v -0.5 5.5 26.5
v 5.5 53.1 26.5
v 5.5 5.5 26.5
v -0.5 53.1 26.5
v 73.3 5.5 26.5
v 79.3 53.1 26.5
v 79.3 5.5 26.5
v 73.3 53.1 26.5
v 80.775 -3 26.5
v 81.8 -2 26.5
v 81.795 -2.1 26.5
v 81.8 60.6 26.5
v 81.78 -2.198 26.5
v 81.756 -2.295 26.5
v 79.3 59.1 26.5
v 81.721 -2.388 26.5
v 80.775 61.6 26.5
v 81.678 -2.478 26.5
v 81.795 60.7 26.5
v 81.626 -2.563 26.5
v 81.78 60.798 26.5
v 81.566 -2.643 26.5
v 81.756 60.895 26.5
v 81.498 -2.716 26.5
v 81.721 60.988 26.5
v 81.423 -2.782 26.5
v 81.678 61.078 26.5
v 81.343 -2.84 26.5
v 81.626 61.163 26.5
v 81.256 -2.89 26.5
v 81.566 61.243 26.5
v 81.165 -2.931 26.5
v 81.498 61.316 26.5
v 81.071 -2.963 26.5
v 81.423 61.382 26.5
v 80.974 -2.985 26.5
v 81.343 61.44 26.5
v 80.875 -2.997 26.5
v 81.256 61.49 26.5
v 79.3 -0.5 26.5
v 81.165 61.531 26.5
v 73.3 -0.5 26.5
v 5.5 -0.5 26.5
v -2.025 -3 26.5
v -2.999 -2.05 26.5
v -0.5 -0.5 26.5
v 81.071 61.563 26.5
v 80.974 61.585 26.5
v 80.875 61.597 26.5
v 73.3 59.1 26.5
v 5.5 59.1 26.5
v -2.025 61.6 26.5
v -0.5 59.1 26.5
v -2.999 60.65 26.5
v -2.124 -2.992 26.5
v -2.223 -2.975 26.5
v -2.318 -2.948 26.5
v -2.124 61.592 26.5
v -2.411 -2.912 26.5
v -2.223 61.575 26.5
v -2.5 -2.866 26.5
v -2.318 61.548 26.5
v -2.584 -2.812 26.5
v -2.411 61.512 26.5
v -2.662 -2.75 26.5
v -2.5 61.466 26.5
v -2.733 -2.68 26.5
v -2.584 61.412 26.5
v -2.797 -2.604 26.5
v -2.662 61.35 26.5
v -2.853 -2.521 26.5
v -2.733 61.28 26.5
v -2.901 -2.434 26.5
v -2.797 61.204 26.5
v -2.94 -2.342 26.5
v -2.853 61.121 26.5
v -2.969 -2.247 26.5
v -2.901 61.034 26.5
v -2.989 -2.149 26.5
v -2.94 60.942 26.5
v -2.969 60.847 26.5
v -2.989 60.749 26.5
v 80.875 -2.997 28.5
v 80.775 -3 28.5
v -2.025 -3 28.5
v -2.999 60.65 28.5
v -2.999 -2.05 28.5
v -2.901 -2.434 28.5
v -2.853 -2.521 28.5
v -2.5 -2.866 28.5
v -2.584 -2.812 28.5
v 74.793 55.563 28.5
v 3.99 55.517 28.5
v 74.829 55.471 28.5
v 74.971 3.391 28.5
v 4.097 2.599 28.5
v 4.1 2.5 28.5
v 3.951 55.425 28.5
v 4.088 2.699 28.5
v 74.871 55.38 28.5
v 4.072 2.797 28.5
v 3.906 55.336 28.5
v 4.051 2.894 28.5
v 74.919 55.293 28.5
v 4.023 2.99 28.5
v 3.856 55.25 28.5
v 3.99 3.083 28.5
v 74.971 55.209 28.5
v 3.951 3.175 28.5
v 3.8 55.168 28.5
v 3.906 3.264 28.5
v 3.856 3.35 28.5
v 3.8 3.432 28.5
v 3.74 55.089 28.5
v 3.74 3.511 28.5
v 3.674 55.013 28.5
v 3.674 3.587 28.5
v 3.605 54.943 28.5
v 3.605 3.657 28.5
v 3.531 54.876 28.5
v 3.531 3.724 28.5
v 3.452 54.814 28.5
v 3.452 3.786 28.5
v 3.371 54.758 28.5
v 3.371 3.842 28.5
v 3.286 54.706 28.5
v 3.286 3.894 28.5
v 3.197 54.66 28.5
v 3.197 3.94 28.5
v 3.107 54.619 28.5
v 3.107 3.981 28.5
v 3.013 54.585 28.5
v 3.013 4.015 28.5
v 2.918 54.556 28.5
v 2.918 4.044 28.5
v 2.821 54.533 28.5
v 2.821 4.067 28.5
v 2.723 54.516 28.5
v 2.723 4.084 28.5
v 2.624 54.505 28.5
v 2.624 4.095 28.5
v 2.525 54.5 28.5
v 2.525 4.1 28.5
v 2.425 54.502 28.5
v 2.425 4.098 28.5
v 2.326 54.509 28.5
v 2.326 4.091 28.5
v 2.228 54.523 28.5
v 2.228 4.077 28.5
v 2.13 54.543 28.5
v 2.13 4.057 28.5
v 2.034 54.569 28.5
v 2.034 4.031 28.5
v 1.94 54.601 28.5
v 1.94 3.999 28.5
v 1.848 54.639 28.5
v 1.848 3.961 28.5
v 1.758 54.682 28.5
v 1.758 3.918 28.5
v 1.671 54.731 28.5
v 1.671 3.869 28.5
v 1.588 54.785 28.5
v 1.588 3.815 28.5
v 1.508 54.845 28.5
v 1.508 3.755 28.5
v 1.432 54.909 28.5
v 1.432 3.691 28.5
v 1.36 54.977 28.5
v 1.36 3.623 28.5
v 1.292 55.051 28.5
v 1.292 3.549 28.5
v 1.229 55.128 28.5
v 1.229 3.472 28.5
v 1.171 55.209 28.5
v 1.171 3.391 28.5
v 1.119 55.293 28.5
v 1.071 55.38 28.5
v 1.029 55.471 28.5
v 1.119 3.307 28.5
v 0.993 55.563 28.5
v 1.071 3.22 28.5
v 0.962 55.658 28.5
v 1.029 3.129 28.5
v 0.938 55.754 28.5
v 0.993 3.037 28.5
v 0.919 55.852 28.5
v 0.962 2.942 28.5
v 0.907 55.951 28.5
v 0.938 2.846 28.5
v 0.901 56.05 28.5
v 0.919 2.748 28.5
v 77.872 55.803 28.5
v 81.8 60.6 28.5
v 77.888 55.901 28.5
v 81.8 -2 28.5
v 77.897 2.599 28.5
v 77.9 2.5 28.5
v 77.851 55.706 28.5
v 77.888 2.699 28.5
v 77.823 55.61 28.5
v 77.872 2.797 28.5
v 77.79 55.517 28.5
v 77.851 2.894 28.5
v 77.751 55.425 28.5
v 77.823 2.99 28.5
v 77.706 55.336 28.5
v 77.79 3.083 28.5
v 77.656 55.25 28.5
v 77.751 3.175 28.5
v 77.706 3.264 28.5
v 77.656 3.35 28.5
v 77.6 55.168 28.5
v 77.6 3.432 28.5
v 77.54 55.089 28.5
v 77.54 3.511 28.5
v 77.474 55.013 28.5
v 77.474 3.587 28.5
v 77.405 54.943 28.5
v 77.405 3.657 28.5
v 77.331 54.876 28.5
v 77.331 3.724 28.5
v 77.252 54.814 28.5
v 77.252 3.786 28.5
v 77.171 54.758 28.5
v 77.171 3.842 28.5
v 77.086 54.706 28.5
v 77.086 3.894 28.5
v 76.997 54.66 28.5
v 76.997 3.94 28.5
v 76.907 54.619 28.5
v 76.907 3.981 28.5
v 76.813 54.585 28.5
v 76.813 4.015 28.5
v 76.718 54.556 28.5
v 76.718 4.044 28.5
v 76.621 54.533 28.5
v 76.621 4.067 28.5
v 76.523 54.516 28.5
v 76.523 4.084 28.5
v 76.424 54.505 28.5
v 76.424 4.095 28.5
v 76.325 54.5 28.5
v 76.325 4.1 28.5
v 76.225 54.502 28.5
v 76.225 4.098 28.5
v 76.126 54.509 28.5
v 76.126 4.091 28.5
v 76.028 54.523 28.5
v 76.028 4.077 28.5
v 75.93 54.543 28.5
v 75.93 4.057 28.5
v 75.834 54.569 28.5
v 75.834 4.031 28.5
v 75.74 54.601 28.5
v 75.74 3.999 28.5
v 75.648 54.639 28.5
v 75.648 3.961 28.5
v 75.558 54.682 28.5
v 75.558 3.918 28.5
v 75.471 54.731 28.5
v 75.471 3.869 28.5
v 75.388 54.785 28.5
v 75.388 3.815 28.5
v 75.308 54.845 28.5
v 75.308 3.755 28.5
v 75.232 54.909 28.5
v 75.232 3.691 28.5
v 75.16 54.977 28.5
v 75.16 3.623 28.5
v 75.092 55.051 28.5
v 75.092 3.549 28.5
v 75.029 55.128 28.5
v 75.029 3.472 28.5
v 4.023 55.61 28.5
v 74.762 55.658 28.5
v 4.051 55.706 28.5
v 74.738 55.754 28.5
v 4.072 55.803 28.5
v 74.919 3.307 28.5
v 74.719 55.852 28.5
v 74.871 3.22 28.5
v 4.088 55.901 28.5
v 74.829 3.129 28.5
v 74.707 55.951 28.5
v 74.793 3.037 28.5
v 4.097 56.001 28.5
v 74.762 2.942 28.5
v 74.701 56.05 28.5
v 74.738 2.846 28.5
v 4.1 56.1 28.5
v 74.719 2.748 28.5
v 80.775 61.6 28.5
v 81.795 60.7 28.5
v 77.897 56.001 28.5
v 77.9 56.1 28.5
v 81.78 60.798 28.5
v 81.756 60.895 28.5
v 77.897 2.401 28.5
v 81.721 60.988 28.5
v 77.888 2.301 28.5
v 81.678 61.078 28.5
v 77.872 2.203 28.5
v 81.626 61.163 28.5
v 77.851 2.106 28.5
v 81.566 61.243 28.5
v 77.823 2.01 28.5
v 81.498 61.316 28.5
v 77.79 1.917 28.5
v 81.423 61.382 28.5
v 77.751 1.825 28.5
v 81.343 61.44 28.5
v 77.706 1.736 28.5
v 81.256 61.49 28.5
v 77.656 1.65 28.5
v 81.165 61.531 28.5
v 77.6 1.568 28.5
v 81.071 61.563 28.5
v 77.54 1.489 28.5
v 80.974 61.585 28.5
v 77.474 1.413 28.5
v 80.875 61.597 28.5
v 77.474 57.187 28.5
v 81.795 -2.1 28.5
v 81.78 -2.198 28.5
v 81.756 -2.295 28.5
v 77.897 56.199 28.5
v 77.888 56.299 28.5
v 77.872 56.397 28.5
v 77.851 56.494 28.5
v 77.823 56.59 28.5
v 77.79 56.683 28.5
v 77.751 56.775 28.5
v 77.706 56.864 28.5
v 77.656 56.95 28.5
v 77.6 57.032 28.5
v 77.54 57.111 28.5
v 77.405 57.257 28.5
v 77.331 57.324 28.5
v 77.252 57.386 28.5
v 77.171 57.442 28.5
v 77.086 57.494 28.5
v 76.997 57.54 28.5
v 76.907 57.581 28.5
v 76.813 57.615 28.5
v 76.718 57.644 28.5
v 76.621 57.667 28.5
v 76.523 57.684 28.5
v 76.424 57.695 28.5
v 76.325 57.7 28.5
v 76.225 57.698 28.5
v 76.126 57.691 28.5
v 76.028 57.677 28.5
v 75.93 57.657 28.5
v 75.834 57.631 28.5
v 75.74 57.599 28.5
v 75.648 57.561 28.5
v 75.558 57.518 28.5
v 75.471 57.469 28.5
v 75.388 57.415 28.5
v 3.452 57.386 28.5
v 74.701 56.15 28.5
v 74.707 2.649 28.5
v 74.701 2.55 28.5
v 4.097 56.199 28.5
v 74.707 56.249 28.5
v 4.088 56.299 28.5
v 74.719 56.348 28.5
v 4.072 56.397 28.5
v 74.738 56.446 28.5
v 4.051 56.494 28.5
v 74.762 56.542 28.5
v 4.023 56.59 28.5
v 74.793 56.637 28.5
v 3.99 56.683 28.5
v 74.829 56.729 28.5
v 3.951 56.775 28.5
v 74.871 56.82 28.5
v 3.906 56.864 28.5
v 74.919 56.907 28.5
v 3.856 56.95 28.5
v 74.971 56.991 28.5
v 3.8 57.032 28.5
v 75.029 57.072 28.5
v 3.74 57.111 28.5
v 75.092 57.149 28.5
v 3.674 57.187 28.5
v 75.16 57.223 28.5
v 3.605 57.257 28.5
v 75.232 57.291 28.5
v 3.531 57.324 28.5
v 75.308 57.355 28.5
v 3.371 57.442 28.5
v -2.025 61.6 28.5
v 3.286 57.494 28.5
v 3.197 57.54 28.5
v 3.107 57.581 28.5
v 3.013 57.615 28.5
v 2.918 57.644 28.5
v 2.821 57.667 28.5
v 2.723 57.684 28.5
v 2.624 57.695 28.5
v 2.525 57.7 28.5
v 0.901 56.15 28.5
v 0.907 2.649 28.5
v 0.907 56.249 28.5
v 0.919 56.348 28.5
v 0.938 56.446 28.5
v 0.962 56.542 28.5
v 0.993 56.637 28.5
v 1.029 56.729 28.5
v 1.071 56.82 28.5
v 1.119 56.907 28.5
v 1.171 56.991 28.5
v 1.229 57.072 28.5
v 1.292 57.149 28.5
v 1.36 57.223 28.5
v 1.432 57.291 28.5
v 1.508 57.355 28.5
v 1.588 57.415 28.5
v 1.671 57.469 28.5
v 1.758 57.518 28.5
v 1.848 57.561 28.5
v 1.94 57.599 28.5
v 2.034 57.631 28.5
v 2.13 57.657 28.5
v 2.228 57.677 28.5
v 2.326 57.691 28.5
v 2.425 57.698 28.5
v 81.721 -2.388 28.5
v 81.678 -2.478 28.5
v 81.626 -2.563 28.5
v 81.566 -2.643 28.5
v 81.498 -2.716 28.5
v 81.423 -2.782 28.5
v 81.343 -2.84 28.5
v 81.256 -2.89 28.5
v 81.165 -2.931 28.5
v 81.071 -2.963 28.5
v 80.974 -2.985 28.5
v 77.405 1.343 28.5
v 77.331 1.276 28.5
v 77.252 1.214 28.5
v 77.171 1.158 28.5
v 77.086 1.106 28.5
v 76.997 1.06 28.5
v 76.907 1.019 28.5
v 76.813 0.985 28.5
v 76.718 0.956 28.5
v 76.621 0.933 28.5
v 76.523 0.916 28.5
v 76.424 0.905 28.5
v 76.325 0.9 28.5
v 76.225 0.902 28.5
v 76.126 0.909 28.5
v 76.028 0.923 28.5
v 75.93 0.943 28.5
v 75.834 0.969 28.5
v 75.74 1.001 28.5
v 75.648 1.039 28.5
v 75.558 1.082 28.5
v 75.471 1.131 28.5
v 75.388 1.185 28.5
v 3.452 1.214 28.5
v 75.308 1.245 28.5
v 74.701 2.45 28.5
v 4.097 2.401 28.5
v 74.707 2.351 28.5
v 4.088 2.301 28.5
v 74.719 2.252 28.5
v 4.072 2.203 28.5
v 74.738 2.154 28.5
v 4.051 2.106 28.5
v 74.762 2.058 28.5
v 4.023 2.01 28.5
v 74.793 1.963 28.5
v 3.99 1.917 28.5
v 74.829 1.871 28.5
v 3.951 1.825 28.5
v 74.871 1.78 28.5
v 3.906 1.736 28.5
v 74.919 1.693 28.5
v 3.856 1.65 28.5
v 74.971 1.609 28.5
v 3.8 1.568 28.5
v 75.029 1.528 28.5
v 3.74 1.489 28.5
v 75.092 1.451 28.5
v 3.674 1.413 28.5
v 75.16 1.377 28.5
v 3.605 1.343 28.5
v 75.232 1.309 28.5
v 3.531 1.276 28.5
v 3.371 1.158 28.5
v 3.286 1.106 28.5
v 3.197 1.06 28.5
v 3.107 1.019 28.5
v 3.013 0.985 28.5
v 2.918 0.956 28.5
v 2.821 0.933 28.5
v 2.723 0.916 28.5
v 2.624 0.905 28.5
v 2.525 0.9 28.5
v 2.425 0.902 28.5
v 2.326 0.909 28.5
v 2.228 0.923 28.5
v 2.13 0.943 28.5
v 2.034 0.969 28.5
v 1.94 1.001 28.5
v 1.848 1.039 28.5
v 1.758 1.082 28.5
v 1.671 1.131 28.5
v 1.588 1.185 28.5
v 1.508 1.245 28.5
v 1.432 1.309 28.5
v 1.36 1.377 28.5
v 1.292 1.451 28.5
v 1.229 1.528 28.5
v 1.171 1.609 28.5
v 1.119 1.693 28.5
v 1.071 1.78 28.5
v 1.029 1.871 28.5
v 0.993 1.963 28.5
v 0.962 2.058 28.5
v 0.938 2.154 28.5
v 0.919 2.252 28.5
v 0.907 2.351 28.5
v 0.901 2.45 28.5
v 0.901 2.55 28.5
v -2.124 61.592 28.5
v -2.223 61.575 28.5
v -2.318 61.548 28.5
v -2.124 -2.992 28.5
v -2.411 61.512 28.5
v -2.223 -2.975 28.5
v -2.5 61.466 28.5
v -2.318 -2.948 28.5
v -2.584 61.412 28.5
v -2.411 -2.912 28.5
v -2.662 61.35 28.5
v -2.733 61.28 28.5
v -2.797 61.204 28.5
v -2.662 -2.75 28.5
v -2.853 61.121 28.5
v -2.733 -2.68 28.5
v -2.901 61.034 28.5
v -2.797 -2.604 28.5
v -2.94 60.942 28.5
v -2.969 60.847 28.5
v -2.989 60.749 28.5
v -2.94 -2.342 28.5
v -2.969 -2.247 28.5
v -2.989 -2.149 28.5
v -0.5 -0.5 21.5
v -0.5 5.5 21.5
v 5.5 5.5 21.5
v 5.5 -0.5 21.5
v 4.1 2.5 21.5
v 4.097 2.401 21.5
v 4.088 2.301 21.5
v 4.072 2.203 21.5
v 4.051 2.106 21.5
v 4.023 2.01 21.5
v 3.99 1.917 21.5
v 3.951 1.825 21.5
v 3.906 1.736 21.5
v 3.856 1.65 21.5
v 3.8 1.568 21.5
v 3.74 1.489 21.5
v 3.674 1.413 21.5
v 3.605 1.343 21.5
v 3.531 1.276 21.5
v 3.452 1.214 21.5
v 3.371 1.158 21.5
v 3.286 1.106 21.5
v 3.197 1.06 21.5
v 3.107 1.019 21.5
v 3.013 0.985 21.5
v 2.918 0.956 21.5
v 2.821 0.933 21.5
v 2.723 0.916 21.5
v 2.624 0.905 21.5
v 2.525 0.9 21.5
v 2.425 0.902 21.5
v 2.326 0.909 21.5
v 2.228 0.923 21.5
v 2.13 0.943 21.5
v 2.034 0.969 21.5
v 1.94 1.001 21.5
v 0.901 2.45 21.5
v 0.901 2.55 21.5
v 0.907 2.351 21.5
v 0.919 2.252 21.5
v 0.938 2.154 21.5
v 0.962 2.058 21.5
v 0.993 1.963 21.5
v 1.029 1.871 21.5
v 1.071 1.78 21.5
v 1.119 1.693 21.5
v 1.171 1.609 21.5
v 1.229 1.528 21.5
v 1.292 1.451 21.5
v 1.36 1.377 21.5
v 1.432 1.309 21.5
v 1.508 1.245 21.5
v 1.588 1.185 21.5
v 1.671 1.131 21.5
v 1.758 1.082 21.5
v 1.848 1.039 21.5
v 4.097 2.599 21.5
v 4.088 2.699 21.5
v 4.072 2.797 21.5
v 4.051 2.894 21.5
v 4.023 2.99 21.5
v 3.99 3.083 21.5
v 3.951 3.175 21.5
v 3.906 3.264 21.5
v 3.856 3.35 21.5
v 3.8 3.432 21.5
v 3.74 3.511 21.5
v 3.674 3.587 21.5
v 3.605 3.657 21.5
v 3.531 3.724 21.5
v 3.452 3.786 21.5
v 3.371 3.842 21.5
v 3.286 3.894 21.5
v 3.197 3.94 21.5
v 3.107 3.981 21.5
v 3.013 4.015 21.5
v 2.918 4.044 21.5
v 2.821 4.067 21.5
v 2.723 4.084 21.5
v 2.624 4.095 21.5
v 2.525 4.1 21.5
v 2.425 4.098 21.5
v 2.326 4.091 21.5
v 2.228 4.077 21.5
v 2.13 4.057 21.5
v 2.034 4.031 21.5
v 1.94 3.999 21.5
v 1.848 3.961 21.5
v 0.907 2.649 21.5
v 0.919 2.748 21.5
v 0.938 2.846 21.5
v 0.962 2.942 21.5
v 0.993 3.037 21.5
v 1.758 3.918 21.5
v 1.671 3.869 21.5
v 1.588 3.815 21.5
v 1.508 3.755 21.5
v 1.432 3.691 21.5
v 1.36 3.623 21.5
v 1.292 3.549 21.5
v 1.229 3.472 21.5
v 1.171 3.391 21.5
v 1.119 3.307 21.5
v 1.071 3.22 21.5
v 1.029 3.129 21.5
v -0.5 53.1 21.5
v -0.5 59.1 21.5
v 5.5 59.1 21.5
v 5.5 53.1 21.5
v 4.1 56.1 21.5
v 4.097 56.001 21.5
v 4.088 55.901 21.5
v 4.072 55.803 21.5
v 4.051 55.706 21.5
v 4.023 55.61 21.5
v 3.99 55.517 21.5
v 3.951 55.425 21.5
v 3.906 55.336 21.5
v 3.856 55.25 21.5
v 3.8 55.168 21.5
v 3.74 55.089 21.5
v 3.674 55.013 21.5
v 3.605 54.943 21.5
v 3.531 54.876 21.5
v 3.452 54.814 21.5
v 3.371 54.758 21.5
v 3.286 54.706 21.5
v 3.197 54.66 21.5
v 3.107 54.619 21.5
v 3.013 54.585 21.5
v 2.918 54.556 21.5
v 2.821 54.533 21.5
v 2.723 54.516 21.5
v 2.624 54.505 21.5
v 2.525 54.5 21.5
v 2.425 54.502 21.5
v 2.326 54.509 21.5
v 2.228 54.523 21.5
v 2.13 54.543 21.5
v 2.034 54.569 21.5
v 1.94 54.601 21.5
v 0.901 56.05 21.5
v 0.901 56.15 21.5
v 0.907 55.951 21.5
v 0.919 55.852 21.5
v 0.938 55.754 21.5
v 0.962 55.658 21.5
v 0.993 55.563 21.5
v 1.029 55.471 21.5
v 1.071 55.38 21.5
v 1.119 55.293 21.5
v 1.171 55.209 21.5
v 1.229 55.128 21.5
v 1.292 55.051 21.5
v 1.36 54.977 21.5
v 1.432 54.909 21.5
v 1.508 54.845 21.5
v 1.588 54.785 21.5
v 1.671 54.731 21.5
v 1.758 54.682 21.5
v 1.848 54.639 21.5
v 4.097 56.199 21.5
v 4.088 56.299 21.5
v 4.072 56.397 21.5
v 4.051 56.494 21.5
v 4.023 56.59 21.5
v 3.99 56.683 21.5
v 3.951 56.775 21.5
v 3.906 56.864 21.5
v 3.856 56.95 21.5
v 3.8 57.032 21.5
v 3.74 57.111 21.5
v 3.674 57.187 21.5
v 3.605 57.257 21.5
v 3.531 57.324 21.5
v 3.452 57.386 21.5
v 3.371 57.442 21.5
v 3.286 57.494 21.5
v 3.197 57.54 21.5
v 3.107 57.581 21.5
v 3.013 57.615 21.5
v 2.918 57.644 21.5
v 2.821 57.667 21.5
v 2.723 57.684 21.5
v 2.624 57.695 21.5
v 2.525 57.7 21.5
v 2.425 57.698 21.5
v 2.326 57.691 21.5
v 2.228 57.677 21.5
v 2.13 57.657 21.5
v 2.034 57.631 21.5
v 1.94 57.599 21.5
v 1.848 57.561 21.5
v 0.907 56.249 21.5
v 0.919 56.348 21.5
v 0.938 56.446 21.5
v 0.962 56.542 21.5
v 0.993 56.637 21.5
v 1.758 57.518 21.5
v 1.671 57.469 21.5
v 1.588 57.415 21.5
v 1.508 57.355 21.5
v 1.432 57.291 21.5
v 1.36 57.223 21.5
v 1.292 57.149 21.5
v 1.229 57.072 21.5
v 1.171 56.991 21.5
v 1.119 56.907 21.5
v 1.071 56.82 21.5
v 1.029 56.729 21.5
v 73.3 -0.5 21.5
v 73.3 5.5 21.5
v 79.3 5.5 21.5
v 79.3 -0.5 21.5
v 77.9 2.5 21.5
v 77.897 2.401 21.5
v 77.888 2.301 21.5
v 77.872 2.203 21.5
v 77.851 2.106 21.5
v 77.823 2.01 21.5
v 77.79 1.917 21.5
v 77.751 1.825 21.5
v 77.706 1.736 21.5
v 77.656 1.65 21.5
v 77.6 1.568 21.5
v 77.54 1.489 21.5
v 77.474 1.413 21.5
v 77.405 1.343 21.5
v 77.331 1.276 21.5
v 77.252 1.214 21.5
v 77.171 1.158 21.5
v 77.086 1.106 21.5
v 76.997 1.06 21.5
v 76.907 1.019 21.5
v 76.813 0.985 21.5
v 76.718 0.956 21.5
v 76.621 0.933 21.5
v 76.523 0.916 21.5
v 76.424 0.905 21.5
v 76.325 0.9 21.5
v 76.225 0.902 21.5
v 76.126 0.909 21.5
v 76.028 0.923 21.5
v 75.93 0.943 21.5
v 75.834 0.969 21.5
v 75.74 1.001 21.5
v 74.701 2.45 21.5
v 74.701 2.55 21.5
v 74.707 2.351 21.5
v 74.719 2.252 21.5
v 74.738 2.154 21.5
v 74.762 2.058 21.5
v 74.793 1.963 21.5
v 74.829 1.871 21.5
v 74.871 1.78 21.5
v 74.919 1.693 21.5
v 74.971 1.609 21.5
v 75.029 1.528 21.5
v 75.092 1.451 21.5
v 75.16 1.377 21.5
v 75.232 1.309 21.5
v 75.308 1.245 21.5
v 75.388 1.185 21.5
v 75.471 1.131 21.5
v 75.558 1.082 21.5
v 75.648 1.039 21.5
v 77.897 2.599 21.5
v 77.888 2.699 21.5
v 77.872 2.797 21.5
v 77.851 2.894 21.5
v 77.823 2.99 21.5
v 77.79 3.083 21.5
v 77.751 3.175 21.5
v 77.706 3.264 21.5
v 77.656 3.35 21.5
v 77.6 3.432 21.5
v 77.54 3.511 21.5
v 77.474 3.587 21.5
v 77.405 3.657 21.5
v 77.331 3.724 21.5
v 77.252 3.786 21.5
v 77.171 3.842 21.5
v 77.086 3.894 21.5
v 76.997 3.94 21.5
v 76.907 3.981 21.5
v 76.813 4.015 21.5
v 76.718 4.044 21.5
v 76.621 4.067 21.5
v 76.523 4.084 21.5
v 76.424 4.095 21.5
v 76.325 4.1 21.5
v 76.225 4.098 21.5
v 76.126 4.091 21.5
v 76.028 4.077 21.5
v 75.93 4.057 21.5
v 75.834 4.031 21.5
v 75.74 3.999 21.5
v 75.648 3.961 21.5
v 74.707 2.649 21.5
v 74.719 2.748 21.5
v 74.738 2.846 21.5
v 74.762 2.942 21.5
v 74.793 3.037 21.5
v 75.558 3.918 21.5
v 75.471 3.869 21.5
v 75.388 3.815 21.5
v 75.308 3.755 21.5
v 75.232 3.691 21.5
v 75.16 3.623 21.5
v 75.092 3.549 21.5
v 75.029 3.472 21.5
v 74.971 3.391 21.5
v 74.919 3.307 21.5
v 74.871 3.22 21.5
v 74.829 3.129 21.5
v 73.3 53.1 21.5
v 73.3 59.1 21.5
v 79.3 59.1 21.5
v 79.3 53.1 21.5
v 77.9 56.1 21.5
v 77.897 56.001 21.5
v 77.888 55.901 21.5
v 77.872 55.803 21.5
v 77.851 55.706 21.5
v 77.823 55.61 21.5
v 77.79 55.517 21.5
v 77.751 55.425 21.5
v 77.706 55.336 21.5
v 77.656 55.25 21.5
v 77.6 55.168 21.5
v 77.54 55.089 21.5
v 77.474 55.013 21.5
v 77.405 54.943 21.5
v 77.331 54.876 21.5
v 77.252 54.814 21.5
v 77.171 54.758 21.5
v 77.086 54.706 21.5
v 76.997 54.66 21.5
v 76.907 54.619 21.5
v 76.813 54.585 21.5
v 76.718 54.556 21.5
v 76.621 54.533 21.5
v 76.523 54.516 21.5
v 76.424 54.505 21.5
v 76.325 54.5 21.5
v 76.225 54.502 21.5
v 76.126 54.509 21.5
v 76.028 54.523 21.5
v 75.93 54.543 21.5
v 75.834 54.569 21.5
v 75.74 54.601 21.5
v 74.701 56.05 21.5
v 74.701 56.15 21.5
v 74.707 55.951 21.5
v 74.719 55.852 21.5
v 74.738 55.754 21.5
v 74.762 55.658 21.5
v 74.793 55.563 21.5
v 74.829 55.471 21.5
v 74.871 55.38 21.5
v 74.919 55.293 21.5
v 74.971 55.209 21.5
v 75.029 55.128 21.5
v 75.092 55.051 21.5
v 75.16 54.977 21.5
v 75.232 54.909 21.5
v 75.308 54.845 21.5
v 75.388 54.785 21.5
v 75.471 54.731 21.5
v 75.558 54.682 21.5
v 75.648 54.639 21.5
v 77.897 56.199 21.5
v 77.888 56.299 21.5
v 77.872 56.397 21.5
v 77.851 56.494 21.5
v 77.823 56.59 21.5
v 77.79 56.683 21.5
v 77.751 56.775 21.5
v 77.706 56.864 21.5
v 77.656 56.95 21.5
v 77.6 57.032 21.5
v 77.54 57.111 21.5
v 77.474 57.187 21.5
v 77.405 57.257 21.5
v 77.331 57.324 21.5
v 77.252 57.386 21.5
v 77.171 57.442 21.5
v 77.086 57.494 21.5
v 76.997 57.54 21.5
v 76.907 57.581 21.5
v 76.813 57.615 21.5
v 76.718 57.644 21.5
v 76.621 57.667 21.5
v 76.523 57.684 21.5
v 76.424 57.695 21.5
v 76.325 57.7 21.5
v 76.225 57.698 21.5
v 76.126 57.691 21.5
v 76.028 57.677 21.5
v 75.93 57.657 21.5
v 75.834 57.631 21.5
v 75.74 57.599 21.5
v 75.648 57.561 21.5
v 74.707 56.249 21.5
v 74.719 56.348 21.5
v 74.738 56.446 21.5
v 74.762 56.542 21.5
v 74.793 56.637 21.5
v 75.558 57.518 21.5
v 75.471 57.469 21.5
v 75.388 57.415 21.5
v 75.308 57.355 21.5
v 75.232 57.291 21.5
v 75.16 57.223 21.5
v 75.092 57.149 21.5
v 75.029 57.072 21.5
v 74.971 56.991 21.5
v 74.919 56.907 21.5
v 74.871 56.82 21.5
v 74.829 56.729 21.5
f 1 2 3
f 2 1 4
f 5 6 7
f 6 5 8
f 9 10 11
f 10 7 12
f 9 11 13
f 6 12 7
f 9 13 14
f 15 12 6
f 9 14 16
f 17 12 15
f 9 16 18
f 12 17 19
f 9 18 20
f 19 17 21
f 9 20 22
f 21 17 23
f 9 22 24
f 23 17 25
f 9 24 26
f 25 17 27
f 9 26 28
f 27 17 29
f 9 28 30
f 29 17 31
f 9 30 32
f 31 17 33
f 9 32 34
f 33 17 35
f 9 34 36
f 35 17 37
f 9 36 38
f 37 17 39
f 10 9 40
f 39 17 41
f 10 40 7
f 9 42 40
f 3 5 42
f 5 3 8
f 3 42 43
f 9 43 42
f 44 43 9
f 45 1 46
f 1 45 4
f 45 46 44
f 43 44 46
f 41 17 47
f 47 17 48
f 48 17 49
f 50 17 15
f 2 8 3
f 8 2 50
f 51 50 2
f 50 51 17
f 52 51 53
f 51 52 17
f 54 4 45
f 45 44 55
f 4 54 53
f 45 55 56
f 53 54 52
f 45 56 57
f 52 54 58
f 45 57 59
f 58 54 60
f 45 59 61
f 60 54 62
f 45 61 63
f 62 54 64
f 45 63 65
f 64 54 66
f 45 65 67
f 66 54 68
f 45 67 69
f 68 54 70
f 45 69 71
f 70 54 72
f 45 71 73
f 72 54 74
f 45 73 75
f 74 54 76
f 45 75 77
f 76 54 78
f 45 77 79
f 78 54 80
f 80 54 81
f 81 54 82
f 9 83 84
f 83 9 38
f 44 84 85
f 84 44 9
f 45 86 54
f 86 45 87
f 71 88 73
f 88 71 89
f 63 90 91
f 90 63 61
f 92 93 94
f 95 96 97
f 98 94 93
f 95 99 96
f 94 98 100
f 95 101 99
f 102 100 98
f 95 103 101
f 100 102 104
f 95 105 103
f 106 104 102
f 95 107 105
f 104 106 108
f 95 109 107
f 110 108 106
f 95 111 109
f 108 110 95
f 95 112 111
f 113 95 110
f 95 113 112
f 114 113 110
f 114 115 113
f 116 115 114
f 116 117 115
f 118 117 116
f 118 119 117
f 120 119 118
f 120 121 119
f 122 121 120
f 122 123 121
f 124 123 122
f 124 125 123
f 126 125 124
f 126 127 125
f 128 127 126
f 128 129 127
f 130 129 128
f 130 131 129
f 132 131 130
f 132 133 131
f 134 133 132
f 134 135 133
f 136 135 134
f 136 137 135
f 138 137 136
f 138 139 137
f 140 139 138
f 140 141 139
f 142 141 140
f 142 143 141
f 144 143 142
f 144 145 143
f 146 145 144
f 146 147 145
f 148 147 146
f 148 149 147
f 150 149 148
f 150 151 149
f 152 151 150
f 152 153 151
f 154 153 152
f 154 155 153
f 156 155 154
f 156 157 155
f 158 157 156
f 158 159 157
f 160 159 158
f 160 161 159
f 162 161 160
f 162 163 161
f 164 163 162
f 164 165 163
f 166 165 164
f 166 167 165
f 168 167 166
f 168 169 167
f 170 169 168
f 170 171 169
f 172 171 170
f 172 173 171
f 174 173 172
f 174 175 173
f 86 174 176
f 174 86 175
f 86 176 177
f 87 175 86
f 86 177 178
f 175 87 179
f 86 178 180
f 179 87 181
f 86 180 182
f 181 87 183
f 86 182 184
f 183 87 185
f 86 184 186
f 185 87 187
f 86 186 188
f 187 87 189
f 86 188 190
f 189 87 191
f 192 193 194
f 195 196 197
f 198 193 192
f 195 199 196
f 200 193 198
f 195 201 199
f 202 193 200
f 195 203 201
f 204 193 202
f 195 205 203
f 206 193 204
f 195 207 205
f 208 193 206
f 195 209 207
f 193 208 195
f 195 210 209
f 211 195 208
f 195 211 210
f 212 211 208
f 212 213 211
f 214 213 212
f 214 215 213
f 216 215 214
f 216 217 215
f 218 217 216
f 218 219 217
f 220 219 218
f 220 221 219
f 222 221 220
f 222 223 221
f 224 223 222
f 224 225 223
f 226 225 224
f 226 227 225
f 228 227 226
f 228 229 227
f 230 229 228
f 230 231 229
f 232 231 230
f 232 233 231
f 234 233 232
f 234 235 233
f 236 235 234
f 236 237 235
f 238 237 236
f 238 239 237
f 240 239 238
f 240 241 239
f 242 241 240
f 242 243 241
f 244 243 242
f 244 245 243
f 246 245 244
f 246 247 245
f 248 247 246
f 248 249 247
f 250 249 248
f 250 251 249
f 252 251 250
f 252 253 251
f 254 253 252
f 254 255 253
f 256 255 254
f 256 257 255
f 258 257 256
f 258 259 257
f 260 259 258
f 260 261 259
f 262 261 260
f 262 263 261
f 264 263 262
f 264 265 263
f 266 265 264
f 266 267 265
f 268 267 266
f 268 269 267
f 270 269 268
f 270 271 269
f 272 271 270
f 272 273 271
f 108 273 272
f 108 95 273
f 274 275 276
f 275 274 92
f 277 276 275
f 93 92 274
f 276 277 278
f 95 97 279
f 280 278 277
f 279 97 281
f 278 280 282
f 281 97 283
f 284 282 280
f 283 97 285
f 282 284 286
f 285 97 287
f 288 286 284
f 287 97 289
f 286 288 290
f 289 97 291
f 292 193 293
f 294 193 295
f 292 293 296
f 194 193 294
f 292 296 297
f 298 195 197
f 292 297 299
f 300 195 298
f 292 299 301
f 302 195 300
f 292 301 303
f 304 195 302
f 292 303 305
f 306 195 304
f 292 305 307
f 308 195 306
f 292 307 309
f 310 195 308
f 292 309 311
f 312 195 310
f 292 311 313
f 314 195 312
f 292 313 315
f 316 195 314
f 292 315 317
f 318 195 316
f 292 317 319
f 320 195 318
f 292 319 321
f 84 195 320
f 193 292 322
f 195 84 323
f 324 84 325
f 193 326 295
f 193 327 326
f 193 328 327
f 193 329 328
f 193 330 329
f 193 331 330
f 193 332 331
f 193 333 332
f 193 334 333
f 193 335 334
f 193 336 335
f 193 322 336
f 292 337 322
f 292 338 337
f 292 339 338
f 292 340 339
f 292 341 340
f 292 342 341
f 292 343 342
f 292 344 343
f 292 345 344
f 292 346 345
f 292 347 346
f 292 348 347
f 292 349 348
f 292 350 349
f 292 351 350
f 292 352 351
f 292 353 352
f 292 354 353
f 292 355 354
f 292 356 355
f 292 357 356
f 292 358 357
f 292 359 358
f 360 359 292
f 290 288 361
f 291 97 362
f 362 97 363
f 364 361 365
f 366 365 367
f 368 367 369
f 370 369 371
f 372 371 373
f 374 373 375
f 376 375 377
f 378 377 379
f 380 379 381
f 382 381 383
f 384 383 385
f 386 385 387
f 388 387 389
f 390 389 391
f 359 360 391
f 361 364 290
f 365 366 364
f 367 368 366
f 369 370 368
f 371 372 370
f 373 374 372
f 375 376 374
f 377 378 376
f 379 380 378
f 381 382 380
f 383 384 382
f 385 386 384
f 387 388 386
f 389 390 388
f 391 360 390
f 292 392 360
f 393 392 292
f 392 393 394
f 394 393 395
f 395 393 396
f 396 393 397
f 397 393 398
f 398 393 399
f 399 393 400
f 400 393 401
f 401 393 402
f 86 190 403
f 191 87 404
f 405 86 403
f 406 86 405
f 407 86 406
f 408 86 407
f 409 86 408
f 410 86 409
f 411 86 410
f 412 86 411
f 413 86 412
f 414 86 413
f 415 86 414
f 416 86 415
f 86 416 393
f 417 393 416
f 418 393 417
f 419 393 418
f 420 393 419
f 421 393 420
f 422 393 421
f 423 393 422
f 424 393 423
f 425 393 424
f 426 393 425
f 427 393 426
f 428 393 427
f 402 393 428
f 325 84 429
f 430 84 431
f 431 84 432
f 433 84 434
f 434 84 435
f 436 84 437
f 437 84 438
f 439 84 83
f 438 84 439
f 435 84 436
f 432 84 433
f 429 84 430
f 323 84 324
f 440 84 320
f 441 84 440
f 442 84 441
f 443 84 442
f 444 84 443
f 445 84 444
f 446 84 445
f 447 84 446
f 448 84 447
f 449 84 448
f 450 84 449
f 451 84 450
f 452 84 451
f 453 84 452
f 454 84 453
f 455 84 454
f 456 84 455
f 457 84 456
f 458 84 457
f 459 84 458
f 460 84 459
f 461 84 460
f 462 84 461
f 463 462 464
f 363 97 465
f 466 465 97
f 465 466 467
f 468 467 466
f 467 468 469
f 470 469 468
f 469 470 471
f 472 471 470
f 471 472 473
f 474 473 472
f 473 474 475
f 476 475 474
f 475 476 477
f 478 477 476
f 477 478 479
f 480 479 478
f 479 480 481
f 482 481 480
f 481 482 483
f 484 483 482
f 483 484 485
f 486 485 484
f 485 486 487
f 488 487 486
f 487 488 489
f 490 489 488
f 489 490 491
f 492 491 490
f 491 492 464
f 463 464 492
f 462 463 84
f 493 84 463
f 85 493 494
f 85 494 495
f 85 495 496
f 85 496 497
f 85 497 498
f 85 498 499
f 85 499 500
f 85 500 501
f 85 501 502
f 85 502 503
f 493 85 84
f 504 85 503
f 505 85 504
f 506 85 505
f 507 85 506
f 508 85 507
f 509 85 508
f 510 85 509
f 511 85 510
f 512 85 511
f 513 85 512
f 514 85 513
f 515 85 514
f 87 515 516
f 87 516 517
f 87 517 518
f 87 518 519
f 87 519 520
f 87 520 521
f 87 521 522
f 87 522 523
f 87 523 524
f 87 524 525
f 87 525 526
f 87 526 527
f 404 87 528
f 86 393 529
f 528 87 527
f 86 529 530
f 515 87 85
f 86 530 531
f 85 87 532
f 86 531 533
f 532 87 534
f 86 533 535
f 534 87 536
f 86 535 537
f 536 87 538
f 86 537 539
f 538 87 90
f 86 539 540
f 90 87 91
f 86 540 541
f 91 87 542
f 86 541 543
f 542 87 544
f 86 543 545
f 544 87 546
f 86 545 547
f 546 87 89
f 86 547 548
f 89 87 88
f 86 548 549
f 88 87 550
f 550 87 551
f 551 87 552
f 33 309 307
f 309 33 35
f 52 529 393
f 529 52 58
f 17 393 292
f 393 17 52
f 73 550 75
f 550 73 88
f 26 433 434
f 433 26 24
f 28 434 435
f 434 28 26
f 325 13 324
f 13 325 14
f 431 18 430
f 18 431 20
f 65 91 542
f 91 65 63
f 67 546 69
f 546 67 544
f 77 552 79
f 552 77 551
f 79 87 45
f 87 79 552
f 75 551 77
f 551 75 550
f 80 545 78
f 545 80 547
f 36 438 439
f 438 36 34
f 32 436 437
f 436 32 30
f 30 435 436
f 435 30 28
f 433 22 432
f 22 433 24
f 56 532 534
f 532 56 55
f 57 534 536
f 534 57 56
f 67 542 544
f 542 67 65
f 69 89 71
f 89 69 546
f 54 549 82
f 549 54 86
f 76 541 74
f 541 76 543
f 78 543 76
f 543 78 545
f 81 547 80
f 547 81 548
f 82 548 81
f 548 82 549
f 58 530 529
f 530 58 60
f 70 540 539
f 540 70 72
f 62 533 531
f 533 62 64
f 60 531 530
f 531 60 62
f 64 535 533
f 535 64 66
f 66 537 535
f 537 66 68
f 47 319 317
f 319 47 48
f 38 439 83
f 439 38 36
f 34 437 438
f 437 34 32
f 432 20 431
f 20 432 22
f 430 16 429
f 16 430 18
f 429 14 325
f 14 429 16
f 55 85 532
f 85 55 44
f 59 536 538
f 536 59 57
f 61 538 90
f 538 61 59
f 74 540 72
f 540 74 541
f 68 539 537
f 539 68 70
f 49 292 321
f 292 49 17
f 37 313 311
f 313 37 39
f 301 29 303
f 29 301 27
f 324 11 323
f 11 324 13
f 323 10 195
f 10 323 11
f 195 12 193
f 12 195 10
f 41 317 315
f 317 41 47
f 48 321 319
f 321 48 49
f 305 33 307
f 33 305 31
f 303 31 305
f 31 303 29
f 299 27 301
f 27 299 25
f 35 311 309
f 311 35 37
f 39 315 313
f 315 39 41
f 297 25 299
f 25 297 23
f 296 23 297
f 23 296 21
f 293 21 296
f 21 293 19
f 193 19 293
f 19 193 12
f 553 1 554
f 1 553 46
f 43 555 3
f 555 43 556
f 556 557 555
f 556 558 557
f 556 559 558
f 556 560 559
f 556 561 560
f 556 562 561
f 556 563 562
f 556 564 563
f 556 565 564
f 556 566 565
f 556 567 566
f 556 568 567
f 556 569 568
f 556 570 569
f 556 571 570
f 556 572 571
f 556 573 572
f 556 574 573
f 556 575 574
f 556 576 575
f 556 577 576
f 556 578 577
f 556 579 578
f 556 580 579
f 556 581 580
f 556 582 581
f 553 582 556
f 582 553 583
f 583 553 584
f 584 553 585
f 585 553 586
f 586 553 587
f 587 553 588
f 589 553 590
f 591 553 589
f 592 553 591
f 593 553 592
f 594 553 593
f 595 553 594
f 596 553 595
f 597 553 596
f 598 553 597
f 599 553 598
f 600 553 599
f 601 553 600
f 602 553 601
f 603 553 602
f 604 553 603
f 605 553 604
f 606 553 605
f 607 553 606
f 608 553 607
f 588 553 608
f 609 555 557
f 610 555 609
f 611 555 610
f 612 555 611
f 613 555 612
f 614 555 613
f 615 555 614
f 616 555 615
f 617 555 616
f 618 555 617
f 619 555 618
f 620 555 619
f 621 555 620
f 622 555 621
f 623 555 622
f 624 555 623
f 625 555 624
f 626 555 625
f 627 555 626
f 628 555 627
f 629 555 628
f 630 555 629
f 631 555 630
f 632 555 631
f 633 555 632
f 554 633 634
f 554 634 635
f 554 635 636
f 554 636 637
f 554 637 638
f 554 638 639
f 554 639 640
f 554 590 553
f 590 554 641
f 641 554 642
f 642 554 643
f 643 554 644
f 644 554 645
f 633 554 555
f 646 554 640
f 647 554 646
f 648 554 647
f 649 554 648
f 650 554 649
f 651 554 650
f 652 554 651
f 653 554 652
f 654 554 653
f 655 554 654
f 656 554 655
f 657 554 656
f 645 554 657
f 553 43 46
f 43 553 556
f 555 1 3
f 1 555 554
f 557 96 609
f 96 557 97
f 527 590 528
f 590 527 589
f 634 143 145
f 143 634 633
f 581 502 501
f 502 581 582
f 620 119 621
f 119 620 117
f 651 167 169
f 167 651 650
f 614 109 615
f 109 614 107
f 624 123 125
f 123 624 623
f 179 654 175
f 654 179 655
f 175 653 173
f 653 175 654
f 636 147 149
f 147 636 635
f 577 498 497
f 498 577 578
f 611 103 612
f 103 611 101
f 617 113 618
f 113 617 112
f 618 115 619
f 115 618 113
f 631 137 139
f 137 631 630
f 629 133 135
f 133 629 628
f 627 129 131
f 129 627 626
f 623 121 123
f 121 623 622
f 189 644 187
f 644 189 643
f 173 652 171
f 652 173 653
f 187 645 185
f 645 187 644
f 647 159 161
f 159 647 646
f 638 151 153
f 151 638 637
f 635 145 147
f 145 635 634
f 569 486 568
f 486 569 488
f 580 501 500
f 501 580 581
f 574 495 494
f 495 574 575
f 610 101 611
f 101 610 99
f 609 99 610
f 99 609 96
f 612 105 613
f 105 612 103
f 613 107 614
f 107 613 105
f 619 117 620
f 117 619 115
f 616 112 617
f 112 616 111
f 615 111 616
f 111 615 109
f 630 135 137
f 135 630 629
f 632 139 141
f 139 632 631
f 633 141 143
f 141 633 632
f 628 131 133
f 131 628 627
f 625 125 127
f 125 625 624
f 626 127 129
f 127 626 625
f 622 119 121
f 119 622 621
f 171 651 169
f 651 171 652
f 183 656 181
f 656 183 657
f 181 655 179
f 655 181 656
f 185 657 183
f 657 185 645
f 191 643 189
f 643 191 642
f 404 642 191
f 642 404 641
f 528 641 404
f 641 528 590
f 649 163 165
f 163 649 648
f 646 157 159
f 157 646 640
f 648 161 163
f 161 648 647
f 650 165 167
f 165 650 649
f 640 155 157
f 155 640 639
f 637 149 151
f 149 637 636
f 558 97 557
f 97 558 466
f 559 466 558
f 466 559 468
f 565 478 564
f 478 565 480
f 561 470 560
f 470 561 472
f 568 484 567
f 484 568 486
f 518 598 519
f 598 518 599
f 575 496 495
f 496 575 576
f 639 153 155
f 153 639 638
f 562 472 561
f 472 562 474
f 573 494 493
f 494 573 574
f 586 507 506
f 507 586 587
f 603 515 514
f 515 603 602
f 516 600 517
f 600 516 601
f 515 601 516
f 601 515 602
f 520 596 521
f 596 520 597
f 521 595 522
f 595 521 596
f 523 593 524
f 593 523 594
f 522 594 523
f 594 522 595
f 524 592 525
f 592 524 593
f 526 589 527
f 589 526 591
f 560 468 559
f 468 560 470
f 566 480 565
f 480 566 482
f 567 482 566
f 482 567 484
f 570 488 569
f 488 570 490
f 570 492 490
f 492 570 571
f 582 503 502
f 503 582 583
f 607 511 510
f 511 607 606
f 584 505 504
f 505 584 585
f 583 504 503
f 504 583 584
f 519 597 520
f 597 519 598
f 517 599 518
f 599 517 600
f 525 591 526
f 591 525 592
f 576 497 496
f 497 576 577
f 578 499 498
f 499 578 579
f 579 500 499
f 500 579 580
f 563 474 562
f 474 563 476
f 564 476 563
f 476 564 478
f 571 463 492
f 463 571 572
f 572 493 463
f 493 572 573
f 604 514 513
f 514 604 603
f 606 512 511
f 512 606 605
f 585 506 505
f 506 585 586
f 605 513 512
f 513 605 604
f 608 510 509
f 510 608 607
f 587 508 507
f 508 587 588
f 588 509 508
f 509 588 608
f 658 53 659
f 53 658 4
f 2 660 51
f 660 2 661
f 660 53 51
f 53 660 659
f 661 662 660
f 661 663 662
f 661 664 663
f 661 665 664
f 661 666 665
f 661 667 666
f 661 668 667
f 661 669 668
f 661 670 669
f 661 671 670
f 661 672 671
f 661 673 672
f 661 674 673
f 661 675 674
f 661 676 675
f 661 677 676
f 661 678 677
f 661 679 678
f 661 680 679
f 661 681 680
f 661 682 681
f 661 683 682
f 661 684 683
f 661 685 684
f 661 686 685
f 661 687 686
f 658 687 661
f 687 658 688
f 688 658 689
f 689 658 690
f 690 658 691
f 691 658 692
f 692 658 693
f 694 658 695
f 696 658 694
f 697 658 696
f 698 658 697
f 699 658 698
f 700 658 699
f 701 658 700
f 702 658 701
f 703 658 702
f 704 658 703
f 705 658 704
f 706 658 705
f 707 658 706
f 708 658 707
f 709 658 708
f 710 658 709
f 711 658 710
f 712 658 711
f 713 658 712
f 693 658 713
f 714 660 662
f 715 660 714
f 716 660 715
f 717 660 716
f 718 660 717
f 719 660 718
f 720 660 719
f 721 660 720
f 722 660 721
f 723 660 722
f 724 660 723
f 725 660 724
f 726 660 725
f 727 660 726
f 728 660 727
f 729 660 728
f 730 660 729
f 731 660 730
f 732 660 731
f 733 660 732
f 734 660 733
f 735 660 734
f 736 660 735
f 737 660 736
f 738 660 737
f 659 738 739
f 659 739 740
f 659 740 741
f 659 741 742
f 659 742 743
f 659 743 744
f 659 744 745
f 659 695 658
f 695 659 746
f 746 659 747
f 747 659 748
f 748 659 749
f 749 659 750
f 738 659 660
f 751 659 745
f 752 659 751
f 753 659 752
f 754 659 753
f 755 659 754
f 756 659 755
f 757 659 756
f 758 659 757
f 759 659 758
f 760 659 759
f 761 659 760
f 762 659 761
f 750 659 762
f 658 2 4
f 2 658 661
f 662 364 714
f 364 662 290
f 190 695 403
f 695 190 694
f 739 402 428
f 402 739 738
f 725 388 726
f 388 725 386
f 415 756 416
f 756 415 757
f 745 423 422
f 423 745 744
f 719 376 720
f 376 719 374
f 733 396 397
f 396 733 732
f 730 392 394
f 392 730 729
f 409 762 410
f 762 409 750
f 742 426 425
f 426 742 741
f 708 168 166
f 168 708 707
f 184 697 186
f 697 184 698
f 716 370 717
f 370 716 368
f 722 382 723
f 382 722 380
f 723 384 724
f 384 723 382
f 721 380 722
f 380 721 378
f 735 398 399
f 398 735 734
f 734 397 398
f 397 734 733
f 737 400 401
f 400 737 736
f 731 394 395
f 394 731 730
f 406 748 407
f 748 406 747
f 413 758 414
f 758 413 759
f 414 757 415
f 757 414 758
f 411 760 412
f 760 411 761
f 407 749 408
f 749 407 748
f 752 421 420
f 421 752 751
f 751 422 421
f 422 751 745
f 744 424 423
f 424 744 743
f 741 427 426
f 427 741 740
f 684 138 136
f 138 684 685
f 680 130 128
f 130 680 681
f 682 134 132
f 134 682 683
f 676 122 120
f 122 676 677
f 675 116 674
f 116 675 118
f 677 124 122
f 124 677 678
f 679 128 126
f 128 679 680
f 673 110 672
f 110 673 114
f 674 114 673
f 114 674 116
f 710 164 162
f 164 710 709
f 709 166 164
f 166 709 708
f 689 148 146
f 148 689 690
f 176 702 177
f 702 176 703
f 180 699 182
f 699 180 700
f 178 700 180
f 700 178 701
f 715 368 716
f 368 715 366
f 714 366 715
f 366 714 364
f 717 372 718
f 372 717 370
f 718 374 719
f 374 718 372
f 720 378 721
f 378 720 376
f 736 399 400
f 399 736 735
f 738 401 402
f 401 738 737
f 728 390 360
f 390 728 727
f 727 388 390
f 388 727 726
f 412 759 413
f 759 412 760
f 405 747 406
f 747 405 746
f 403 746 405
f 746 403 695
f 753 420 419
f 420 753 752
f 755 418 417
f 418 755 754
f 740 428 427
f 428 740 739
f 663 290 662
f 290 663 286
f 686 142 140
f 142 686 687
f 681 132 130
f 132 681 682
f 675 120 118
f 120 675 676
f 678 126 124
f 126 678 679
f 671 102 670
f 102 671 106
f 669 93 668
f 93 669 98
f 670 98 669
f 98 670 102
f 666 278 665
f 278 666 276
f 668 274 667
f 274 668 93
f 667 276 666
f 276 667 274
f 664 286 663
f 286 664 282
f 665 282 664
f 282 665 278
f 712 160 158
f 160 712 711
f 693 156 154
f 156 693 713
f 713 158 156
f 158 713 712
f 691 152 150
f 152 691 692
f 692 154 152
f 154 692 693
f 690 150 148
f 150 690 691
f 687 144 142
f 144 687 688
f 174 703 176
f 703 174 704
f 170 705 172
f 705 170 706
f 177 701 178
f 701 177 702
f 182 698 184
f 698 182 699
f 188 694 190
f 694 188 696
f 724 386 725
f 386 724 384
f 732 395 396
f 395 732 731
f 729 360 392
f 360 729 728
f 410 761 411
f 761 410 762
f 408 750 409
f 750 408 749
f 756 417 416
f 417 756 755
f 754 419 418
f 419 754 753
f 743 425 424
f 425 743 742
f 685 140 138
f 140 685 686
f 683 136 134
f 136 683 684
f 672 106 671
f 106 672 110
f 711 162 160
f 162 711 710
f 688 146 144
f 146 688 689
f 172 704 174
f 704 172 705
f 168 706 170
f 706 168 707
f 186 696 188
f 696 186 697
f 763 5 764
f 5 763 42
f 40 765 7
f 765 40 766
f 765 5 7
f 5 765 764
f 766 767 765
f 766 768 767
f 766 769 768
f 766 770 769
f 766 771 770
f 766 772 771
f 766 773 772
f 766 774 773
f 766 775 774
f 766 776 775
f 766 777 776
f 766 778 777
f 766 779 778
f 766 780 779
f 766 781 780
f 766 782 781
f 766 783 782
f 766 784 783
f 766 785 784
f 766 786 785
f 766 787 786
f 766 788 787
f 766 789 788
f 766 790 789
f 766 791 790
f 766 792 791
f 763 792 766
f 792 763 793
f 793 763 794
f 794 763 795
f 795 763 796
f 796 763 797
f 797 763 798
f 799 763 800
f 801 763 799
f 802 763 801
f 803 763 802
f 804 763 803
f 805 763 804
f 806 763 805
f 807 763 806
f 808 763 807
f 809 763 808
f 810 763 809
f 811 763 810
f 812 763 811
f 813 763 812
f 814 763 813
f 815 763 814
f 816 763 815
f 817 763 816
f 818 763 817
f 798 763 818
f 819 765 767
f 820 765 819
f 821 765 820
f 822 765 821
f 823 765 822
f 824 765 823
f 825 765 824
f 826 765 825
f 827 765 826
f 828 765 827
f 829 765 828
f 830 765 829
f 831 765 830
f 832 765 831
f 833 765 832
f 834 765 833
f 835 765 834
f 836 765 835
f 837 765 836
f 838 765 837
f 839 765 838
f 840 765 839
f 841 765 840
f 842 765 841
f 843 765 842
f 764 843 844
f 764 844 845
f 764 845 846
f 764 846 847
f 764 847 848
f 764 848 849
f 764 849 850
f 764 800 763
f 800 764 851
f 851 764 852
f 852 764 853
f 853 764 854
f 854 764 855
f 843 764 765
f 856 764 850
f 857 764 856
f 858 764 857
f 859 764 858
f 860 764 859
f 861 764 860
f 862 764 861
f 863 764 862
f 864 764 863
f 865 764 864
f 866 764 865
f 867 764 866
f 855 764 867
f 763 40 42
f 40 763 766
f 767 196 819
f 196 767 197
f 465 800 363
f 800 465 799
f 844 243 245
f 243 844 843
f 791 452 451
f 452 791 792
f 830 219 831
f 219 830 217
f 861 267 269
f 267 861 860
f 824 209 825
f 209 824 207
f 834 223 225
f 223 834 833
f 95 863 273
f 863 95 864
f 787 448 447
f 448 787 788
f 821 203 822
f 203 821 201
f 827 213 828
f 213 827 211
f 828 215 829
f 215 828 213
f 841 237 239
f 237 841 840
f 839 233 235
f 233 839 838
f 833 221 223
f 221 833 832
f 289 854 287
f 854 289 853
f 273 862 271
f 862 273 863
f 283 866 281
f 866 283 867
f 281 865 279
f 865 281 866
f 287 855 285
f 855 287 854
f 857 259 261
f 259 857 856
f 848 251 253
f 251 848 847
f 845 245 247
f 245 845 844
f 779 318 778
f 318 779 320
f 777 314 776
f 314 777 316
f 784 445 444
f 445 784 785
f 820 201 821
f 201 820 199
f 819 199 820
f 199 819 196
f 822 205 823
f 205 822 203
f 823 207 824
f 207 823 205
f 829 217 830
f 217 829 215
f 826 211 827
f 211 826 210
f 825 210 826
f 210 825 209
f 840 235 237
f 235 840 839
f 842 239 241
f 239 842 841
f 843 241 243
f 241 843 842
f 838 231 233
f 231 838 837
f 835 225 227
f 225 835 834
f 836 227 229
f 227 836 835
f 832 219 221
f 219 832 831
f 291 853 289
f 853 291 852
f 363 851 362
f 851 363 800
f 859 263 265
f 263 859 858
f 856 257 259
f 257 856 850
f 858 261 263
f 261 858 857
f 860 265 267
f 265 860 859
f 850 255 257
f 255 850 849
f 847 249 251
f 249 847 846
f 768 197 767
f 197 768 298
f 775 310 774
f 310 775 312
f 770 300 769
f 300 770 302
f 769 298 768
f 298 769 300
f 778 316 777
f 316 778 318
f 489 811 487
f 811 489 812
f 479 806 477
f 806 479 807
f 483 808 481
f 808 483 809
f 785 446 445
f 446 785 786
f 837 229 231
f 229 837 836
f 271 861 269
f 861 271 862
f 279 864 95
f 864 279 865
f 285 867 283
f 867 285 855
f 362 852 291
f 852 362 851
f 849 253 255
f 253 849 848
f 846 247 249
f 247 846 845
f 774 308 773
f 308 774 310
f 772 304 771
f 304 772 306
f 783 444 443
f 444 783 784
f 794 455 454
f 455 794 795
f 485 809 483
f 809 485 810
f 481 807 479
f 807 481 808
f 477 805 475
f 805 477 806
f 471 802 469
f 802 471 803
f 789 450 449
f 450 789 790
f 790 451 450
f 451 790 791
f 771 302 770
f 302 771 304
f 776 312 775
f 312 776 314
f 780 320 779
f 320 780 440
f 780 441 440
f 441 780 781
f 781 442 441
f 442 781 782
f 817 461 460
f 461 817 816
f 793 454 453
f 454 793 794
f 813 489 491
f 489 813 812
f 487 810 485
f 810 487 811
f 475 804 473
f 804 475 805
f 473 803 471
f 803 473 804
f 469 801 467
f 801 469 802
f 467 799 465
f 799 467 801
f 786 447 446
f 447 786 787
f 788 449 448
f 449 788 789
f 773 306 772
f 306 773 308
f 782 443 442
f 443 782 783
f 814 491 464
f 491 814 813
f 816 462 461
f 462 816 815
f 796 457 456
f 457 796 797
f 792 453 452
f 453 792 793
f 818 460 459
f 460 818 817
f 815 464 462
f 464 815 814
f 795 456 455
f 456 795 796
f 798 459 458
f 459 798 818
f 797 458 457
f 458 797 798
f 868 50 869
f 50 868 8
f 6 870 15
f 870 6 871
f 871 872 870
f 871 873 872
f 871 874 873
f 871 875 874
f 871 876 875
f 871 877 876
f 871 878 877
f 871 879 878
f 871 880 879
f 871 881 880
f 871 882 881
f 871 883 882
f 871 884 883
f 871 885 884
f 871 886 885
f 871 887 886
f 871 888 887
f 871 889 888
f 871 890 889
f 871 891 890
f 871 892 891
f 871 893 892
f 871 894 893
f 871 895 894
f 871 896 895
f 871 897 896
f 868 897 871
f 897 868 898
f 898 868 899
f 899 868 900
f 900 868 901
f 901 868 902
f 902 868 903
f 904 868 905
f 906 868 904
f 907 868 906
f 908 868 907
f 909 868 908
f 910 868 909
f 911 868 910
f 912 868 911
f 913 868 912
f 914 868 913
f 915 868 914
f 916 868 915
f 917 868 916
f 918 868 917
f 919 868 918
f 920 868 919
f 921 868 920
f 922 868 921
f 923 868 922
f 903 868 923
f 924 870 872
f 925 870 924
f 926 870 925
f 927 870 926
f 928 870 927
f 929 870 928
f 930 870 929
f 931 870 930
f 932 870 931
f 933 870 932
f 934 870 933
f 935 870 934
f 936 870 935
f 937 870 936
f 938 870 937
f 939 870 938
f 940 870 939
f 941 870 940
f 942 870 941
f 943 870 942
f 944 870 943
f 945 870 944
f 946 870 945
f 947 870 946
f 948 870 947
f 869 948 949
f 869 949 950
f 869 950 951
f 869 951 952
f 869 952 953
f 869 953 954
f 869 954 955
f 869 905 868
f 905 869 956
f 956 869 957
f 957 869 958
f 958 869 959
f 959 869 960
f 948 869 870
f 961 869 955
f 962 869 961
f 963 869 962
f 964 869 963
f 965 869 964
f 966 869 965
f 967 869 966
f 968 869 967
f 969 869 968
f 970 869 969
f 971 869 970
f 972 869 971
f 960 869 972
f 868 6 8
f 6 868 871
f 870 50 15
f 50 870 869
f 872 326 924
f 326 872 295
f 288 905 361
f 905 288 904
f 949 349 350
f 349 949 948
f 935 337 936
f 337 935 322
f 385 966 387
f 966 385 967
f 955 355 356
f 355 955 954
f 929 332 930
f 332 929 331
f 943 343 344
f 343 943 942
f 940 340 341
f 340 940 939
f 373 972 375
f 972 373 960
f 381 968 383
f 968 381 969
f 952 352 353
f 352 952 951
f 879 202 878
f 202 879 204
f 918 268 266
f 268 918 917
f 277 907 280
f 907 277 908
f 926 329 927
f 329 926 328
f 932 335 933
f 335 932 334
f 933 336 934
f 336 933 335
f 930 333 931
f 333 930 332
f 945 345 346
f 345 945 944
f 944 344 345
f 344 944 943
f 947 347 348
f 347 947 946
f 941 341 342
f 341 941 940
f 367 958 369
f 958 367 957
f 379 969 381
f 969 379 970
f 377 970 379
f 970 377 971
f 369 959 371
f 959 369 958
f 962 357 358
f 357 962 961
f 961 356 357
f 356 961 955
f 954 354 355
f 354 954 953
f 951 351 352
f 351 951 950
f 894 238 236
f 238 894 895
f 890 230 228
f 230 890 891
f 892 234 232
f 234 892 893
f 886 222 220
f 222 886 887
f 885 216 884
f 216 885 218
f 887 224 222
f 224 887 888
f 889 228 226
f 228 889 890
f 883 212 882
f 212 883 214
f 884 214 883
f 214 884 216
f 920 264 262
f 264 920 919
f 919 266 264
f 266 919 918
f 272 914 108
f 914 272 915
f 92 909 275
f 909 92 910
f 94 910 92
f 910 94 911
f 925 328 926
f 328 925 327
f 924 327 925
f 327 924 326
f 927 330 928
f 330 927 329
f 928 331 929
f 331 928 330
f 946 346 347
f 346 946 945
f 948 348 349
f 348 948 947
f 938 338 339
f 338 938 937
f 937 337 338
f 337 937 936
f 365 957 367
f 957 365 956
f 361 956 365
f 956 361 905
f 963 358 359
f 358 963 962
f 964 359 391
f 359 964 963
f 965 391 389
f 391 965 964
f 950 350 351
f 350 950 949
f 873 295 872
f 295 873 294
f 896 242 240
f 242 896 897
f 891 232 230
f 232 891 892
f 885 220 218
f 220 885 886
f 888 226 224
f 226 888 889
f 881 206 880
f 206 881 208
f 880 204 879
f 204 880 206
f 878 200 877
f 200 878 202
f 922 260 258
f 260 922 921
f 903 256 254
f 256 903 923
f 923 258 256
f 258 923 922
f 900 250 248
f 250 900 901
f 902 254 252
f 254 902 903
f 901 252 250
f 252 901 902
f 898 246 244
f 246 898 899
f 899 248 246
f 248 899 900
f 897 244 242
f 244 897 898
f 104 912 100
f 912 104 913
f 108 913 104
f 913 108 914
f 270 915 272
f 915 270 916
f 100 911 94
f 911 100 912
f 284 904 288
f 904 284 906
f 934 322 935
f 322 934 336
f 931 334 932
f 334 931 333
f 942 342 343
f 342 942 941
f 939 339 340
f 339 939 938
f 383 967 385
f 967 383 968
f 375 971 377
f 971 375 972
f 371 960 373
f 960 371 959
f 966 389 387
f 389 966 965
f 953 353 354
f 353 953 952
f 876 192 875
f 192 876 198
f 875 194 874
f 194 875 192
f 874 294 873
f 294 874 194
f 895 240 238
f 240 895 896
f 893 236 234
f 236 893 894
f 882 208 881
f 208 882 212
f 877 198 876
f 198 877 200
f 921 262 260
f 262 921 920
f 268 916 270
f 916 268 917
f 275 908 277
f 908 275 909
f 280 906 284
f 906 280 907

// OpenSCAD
$fs=0.1; $fa=0.1;
color([0.5, 0.5, 0.5]){
    difference(){
        union(){
            difference(){
                union(){
                    difference(){
                        union(){
                            difference(){
                                union(){
                                    difference(){
                                        hull(){
                                            union(){
                                                translate(v=[-2.0, -2.0, 26.5]){
                                                    cylinder(h=2.0, d=2);
                                                };
                                                translate(v=[-2.0, 60.6, 26.5]){
                                                    cylinder(h=2.0, d=2);
                                                };
                                                translate(v=[80.8, -2.0, 26.5]){
                                                    cylinder(h=2.0, d=2);
                                                };
                                                translate(v=[80.8, 60.6, 26.5]){
                                                    cylinder(h=2.0, d=2);
                                                };
                                            };
                                        };
                                        translate(v=[-1, -1, 0]){
                                            cube(size=[80.8, 60.6, 0]);
                                        };
                                    };
                                    translate(v=[-0.5, -0.5, 21.5]){
                                        cube(size=[6, 6, 5]);
                                    };
                                };
                                translate(v=[2.5, 2.5, 21.4]){
                                    cylinder(h=7.2, d=3.2);
                                };
                            };
                            translate(v=[-0.5, 53.1, 21.5]){
                                cube(size=[6, 6, 5]);
                            };
                        };
                        translate(v=[2.5, 56.1, 21.4]){
                            cylinder(h=7.2, d=3.2);
                        };
                    };
                    translate(v=[73.3, -0.5, 21.5]){
                        cube(size=[6, 6, 5]);
                    };
                };
                translate(v=[76.3, 2.5, 21.4]){
                    cylinder(h=7.2, d=3.2);
                };
            };
            translate(v=[73.3, 53.1, 21.5]){
                cube(size=[6, 6, 5]);
            };
        };
        translate(v=[76.3, 56.1, 21.4]){
            cylinder(h=7.2, d=3.2);
        };
    };
};
